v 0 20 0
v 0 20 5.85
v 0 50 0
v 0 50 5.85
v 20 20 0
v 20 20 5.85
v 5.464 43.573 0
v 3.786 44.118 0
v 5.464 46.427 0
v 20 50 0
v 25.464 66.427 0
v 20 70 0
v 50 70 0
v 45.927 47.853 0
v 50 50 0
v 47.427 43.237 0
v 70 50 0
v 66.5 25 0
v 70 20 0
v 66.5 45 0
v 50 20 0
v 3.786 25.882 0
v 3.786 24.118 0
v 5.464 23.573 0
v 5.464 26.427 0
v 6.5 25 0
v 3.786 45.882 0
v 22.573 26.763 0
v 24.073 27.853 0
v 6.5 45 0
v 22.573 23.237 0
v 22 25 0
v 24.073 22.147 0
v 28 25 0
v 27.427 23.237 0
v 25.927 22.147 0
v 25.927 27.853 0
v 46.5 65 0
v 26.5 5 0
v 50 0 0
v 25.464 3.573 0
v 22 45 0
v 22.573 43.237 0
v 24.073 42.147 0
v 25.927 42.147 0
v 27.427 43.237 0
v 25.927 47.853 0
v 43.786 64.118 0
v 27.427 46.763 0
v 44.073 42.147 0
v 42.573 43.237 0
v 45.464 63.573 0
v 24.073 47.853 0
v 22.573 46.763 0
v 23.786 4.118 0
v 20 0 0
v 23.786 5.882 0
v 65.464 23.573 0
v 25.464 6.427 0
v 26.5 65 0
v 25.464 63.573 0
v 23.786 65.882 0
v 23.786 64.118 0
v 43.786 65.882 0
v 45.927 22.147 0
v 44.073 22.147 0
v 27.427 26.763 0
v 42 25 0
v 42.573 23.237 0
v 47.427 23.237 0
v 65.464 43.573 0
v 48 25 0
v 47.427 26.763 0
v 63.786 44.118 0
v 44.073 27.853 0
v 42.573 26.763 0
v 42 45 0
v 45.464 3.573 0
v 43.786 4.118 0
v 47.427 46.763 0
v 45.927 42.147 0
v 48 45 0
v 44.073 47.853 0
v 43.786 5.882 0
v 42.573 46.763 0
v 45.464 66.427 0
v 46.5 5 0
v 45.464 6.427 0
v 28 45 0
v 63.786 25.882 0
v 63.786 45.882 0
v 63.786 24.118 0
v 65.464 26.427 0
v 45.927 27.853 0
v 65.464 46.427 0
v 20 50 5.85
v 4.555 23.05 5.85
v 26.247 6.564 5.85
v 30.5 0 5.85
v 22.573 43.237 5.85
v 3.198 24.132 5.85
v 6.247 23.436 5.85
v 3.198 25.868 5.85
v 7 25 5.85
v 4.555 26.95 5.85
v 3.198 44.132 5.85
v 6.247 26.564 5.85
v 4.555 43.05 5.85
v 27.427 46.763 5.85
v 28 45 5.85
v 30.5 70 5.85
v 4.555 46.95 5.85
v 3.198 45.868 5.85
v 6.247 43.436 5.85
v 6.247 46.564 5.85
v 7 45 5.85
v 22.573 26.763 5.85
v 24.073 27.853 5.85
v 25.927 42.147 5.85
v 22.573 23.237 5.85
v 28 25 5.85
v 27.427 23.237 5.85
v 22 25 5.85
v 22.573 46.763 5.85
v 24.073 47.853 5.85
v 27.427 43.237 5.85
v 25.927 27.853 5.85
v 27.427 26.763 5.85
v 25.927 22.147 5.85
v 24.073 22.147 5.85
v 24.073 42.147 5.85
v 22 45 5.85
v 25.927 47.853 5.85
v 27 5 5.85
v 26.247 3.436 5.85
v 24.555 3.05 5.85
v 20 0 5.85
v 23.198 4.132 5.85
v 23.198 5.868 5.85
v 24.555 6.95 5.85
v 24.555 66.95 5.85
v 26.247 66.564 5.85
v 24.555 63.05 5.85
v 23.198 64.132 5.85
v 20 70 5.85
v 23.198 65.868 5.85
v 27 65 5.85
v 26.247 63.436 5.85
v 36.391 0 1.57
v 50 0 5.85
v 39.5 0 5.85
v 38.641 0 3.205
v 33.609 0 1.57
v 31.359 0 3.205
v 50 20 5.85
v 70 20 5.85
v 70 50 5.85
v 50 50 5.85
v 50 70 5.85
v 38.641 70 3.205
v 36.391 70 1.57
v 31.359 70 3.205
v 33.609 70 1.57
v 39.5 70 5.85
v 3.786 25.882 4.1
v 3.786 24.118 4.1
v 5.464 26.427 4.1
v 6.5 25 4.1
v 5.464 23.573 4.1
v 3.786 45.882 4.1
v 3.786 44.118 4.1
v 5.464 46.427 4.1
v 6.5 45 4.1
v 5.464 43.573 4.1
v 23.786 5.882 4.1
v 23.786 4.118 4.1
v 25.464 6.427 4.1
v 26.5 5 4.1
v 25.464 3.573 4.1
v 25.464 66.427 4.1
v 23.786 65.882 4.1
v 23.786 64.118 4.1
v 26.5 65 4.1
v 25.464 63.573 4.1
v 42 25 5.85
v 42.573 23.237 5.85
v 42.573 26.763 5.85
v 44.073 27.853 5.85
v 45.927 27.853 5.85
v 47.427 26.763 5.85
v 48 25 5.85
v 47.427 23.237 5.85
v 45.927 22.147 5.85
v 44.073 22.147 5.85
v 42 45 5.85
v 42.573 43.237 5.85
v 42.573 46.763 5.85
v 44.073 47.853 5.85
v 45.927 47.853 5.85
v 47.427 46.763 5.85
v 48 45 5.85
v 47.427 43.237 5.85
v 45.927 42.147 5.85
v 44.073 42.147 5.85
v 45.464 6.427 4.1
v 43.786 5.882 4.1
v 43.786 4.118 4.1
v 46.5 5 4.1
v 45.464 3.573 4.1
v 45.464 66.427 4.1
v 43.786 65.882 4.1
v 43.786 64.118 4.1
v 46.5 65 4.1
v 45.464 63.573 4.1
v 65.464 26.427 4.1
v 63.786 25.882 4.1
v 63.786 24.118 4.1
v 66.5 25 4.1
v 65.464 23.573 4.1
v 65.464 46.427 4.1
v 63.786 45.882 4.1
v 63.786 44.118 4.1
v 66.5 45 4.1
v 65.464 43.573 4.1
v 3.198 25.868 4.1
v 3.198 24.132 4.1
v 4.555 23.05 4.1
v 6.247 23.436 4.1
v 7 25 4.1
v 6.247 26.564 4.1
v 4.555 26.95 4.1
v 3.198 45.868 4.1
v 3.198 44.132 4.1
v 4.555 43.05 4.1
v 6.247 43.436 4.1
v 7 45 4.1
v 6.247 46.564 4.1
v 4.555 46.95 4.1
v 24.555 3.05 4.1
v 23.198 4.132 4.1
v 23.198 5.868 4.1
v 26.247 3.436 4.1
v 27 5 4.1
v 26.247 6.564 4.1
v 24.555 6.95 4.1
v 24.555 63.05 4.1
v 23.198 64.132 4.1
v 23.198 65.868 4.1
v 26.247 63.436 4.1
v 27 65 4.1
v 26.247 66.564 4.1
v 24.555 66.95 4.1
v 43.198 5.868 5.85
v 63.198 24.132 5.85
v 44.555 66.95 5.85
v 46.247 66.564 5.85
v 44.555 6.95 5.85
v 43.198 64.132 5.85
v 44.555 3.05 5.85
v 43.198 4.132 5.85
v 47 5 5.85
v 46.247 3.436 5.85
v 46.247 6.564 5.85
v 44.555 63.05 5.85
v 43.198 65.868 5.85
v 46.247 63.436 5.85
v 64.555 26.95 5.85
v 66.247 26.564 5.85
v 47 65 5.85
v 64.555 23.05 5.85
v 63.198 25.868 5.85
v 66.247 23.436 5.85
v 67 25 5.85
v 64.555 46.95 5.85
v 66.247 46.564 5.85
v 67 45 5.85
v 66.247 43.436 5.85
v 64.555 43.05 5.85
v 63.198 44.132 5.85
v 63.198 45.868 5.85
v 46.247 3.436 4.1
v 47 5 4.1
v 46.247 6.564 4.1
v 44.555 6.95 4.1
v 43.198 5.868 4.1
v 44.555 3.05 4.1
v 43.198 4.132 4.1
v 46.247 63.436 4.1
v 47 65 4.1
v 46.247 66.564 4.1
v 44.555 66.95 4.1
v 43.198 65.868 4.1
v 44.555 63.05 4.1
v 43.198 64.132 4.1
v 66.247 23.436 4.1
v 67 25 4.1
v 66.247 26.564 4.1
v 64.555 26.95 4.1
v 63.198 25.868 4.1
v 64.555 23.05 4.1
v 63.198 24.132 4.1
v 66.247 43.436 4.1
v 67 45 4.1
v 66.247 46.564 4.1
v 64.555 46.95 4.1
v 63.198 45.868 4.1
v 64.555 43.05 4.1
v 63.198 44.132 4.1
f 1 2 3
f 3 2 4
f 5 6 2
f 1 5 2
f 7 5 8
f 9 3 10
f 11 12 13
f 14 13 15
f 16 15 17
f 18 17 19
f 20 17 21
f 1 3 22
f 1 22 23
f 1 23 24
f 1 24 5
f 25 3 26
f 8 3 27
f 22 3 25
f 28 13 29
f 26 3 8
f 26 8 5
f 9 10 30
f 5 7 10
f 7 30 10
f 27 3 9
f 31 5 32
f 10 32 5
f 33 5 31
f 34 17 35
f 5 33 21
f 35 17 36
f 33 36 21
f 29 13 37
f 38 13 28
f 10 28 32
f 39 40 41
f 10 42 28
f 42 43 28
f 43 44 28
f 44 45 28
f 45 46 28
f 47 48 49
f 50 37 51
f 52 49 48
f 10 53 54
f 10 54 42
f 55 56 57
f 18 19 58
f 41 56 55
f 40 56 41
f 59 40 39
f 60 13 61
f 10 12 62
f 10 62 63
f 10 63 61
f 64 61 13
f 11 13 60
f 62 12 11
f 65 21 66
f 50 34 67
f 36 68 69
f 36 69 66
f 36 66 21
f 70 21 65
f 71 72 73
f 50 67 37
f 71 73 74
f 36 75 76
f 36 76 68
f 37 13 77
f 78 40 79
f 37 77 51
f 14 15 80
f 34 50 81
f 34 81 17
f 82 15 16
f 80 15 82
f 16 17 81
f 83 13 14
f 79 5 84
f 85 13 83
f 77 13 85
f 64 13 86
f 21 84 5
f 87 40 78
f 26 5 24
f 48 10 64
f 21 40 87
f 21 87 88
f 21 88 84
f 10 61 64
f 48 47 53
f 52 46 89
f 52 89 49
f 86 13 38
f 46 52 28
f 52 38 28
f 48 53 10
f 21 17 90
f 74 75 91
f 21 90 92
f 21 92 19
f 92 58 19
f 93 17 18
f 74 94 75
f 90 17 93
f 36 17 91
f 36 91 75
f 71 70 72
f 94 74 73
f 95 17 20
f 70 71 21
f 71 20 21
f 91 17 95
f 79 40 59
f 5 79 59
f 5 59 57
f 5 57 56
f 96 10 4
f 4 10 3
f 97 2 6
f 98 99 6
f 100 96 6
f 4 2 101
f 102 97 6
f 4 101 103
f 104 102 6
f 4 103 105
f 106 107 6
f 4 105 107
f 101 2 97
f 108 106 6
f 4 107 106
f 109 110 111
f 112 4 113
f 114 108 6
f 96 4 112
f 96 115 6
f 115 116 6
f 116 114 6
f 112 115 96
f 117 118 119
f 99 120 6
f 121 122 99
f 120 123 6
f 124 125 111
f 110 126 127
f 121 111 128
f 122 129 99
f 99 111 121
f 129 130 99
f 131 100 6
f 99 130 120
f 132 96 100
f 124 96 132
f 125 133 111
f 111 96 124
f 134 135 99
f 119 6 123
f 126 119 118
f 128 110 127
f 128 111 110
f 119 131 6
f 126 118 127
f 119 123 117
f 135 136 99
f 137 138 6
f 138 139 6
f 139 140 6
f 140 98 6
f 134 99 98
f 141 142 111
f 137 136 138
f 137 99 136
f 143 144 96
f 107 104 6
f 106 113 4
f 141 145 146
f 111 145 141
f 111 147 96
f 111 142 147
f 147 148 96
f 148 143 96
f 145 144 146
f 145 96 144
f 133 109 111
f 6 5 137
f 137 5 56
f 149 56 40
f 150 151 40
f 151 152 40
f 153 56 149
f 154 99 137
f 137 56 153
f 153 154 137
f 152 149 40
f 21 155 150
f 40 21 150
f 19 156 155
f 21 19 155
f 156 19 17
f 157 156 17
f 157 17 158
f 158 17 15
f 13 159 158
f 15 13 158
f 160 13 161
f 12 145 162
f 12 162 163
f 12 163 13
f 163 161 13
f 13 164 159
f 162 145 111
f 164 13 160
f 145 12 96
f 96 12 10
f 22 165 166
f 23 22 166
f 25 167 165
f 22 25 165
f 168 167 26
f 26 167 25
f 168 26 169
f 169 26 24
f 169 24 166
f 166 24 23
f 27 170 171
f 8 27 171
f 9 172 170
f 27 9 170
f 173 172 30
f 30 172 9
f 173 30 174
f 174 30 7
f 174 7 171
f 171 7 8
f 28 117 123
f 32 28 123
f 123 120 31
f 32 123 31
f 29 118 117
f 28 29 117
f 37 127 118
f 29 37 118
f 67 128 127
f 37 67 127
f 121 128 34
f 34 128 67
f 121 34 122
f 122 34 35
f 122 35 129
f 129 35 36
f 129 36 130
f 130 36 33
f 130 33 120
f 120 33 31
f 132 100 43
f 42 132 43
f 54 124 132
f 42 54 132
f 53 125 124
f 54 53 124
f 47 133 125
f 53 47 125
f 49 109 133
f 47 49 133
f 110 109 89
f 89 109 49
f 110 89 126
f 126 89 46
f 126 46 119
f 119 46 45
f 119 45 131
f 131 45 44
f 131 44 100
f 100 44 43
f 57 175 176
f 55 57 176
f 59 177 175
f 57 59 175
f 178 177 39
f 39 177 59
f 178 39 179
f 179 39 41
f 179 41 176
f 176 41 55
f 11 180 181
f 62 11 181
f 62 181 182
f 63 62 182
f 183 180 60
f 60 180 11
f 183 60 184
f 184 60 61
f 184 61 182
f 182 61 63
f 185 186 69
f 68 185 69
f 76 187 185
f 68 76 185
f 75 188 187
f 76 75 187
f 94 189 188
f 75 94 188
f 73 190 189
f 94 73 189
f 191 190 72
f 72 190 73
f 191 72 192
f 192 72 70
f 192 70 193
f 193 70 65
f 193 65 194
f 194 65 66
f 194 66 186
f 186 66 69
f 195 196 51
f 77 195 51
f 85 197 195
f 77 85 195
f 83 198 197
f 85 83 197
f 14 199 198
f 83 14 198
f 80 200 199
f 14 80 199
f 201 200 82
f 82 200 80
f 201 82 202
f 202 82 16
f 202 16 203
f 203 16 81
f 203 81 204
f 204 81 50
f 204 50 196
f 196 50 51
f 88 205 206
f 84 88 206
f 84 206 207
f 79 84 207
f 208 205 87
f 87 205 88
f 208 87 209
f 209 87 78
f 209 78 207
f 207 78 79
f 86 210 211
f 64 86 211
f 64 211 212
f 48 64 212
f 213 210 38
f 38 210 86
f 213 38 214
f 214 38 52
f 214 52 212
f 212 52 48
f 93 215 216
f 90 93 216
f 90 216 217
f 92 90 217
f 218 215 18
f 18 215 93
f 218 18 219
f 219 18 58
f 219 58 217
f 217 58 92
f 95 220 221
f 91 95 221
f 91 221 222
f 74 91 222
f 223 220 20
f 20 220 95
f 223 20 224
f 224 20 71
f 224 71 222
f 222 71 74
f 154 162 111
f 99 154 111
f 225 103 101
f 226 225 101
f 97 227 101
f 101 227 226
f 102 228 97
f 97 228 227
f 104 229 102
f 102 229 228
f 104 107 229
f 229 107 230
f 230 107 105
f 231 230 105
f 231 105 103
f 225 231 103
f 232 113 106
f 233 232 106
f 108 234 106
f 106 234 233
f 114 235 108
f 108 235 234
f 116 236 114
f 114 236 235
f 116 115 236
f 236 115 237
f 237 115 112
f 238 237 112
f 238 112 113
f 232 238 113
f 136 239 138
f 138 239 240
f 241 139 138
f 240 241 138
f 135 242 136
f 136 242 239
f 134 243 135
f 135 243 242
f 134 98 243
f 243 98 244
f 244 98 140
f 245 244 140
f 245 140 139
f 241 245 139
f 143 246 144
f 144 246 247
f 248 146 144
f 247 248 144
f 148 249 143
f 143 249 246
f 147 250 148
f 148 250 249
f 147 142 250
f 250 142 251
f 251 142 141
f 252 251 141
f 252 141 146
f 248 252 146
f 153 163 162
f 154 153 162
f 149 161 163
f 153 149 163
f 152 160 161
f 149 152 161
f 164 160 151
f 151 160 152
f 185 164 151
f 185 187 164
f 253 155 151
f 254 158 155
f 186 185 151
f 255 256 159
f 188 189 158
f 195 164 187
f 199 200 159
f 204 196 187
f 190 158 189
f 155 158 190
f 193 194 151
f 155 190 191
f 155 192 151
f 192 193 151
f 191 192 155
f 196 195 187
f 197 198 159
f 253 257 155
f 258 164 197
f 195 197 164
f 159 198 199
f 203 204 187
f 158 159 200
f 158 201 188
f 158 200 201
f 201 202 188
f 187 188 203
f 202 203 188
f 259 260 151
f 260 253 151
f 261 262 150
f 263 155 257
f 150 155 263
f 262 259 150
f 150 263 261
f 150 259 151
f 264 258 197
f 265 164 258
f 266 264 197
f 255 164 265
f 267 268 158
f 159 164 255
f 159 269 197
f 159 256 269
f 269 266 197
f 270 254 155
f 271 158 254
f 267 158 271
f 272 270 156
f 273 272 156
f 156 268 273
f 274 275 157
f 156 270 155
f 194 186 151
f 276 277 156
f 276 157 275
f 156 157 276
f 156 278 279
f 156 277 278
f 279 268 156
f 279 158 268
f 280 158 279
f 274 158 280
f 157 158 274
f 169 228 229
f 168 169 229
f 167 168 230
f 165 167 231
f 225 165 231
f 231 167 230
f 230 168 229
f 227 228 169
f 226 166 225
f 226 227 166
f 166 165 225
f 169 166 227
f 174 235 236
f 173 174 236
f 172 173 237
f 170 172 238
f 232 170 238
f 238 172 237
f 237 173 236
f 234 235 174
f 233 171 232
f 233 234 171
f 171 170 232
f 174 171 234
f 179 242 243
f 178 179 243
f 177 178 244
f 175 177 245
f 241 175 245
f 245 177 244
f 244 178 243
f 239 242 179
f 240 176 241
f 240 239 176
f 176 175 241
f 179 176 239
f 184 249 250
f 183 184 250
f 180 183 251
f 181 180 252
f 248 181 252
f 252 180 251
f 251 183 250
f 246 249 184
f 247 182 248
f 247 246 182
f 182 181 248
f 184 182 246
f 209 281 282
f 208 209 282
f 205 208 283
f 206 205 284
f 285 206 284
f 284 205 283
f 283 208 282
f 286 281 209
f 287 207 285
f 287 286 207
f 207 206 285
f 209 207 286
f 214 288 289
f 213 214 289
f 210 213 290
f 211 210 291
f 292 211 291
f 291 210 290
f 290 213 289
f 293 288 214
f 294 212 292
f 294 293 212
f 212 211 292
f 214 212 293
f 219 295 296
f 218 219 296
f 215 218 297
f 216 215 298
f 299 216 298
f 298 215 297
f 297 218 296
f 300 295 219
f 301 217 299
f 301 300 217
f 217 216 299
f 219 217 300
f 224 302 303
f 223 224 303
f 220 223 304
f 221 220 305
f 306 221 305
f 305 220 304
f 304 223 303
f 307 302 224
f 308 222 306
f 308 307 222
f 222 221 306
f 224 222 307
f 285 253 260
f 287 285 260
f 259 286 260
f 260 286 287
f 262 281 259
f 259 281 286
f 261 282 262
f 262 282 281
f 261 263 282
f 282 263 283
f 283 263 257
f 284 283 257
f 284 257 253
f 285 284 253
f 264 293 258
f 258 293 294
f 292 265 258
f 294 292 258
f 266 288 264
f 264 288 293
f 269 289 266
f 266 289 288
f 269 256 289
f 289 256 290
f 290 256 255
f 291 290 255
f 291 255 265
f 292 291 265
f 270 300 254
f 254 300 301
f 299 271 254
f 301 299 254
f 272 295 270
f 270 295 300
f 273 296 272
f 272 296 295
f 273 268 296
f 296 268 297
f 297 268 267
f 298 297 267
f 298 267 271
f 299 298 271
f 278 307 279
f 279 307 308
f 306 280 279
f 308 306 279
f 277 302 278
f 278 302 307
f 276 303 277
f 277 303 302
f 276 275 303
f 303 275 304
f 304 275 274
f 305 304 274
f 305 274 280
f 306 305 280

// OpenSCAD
// file: hardware.scad
axle_r = 4.5;
axle_separation = 30;

module axle(h) {
	rotate(v=[-1,0,0], a=90) cylinder(r=axle_r, h=h, $fn=10);
}

module axlepair(h=100) {
	union() {
		axle(h);
		translate(v=[axle_separation, 0, 0]) axle(h);
	}
}

module m2(h=16) {
	union() {
		cylinder(r=2, h=2);
		cylinder(r=1.5, h=h);
	}
}

module m3(h=16) {
	union() {
		cylinder(r=3.25, h=3);
		cylinder(r=2, h=h);
	}
}

module m5(h=16) {
	union() {
		cylinder(r=4.5, h=5);
		cylinder(r=3, h=h);
	}
}
// main file
include <hardware.scad>

module brock_a() {
	h = 1.3 * axle_r;
	corner = 20;
	width = 70;
	screw = 5;
	z_off = 6.1;
	m5_z_off = -6;

	difference() {
		cube([width, width, h]);

		for (v = [[0,0,0],[width-corner,0,0],
				[0,width-corner,0],[width-corner,width-corner,0]]) 
			translate(v=v) cube([corner, corner, h]);

		for (v = [[screw, corner+screw, z_off],
				[screw, width-(corner+screw), z_off],
				[corner+screw, screw, z_off],
				[corner+screw, width-screw, z_off],
				[width-(corner+screw), screw, z_off],
				[width-(corner+screw), width-screw, z_off],
				[width-screw, corner+screw, z_off],
				[width-screw, width-(corner+screw), z_off]])
			translate(v=v) rotate(v=[1,0,0], 180) m2();

		for (x=[corner+screw, width-(corner+screw)])
			for (y=[corner+screw, width-(corner+screw)])
				translate(v=[x,y,m5_z_off]) m5();

		translate(v=[width/2,-0.5,h]) axle(h=width+1);
	}
}

brock_a();
